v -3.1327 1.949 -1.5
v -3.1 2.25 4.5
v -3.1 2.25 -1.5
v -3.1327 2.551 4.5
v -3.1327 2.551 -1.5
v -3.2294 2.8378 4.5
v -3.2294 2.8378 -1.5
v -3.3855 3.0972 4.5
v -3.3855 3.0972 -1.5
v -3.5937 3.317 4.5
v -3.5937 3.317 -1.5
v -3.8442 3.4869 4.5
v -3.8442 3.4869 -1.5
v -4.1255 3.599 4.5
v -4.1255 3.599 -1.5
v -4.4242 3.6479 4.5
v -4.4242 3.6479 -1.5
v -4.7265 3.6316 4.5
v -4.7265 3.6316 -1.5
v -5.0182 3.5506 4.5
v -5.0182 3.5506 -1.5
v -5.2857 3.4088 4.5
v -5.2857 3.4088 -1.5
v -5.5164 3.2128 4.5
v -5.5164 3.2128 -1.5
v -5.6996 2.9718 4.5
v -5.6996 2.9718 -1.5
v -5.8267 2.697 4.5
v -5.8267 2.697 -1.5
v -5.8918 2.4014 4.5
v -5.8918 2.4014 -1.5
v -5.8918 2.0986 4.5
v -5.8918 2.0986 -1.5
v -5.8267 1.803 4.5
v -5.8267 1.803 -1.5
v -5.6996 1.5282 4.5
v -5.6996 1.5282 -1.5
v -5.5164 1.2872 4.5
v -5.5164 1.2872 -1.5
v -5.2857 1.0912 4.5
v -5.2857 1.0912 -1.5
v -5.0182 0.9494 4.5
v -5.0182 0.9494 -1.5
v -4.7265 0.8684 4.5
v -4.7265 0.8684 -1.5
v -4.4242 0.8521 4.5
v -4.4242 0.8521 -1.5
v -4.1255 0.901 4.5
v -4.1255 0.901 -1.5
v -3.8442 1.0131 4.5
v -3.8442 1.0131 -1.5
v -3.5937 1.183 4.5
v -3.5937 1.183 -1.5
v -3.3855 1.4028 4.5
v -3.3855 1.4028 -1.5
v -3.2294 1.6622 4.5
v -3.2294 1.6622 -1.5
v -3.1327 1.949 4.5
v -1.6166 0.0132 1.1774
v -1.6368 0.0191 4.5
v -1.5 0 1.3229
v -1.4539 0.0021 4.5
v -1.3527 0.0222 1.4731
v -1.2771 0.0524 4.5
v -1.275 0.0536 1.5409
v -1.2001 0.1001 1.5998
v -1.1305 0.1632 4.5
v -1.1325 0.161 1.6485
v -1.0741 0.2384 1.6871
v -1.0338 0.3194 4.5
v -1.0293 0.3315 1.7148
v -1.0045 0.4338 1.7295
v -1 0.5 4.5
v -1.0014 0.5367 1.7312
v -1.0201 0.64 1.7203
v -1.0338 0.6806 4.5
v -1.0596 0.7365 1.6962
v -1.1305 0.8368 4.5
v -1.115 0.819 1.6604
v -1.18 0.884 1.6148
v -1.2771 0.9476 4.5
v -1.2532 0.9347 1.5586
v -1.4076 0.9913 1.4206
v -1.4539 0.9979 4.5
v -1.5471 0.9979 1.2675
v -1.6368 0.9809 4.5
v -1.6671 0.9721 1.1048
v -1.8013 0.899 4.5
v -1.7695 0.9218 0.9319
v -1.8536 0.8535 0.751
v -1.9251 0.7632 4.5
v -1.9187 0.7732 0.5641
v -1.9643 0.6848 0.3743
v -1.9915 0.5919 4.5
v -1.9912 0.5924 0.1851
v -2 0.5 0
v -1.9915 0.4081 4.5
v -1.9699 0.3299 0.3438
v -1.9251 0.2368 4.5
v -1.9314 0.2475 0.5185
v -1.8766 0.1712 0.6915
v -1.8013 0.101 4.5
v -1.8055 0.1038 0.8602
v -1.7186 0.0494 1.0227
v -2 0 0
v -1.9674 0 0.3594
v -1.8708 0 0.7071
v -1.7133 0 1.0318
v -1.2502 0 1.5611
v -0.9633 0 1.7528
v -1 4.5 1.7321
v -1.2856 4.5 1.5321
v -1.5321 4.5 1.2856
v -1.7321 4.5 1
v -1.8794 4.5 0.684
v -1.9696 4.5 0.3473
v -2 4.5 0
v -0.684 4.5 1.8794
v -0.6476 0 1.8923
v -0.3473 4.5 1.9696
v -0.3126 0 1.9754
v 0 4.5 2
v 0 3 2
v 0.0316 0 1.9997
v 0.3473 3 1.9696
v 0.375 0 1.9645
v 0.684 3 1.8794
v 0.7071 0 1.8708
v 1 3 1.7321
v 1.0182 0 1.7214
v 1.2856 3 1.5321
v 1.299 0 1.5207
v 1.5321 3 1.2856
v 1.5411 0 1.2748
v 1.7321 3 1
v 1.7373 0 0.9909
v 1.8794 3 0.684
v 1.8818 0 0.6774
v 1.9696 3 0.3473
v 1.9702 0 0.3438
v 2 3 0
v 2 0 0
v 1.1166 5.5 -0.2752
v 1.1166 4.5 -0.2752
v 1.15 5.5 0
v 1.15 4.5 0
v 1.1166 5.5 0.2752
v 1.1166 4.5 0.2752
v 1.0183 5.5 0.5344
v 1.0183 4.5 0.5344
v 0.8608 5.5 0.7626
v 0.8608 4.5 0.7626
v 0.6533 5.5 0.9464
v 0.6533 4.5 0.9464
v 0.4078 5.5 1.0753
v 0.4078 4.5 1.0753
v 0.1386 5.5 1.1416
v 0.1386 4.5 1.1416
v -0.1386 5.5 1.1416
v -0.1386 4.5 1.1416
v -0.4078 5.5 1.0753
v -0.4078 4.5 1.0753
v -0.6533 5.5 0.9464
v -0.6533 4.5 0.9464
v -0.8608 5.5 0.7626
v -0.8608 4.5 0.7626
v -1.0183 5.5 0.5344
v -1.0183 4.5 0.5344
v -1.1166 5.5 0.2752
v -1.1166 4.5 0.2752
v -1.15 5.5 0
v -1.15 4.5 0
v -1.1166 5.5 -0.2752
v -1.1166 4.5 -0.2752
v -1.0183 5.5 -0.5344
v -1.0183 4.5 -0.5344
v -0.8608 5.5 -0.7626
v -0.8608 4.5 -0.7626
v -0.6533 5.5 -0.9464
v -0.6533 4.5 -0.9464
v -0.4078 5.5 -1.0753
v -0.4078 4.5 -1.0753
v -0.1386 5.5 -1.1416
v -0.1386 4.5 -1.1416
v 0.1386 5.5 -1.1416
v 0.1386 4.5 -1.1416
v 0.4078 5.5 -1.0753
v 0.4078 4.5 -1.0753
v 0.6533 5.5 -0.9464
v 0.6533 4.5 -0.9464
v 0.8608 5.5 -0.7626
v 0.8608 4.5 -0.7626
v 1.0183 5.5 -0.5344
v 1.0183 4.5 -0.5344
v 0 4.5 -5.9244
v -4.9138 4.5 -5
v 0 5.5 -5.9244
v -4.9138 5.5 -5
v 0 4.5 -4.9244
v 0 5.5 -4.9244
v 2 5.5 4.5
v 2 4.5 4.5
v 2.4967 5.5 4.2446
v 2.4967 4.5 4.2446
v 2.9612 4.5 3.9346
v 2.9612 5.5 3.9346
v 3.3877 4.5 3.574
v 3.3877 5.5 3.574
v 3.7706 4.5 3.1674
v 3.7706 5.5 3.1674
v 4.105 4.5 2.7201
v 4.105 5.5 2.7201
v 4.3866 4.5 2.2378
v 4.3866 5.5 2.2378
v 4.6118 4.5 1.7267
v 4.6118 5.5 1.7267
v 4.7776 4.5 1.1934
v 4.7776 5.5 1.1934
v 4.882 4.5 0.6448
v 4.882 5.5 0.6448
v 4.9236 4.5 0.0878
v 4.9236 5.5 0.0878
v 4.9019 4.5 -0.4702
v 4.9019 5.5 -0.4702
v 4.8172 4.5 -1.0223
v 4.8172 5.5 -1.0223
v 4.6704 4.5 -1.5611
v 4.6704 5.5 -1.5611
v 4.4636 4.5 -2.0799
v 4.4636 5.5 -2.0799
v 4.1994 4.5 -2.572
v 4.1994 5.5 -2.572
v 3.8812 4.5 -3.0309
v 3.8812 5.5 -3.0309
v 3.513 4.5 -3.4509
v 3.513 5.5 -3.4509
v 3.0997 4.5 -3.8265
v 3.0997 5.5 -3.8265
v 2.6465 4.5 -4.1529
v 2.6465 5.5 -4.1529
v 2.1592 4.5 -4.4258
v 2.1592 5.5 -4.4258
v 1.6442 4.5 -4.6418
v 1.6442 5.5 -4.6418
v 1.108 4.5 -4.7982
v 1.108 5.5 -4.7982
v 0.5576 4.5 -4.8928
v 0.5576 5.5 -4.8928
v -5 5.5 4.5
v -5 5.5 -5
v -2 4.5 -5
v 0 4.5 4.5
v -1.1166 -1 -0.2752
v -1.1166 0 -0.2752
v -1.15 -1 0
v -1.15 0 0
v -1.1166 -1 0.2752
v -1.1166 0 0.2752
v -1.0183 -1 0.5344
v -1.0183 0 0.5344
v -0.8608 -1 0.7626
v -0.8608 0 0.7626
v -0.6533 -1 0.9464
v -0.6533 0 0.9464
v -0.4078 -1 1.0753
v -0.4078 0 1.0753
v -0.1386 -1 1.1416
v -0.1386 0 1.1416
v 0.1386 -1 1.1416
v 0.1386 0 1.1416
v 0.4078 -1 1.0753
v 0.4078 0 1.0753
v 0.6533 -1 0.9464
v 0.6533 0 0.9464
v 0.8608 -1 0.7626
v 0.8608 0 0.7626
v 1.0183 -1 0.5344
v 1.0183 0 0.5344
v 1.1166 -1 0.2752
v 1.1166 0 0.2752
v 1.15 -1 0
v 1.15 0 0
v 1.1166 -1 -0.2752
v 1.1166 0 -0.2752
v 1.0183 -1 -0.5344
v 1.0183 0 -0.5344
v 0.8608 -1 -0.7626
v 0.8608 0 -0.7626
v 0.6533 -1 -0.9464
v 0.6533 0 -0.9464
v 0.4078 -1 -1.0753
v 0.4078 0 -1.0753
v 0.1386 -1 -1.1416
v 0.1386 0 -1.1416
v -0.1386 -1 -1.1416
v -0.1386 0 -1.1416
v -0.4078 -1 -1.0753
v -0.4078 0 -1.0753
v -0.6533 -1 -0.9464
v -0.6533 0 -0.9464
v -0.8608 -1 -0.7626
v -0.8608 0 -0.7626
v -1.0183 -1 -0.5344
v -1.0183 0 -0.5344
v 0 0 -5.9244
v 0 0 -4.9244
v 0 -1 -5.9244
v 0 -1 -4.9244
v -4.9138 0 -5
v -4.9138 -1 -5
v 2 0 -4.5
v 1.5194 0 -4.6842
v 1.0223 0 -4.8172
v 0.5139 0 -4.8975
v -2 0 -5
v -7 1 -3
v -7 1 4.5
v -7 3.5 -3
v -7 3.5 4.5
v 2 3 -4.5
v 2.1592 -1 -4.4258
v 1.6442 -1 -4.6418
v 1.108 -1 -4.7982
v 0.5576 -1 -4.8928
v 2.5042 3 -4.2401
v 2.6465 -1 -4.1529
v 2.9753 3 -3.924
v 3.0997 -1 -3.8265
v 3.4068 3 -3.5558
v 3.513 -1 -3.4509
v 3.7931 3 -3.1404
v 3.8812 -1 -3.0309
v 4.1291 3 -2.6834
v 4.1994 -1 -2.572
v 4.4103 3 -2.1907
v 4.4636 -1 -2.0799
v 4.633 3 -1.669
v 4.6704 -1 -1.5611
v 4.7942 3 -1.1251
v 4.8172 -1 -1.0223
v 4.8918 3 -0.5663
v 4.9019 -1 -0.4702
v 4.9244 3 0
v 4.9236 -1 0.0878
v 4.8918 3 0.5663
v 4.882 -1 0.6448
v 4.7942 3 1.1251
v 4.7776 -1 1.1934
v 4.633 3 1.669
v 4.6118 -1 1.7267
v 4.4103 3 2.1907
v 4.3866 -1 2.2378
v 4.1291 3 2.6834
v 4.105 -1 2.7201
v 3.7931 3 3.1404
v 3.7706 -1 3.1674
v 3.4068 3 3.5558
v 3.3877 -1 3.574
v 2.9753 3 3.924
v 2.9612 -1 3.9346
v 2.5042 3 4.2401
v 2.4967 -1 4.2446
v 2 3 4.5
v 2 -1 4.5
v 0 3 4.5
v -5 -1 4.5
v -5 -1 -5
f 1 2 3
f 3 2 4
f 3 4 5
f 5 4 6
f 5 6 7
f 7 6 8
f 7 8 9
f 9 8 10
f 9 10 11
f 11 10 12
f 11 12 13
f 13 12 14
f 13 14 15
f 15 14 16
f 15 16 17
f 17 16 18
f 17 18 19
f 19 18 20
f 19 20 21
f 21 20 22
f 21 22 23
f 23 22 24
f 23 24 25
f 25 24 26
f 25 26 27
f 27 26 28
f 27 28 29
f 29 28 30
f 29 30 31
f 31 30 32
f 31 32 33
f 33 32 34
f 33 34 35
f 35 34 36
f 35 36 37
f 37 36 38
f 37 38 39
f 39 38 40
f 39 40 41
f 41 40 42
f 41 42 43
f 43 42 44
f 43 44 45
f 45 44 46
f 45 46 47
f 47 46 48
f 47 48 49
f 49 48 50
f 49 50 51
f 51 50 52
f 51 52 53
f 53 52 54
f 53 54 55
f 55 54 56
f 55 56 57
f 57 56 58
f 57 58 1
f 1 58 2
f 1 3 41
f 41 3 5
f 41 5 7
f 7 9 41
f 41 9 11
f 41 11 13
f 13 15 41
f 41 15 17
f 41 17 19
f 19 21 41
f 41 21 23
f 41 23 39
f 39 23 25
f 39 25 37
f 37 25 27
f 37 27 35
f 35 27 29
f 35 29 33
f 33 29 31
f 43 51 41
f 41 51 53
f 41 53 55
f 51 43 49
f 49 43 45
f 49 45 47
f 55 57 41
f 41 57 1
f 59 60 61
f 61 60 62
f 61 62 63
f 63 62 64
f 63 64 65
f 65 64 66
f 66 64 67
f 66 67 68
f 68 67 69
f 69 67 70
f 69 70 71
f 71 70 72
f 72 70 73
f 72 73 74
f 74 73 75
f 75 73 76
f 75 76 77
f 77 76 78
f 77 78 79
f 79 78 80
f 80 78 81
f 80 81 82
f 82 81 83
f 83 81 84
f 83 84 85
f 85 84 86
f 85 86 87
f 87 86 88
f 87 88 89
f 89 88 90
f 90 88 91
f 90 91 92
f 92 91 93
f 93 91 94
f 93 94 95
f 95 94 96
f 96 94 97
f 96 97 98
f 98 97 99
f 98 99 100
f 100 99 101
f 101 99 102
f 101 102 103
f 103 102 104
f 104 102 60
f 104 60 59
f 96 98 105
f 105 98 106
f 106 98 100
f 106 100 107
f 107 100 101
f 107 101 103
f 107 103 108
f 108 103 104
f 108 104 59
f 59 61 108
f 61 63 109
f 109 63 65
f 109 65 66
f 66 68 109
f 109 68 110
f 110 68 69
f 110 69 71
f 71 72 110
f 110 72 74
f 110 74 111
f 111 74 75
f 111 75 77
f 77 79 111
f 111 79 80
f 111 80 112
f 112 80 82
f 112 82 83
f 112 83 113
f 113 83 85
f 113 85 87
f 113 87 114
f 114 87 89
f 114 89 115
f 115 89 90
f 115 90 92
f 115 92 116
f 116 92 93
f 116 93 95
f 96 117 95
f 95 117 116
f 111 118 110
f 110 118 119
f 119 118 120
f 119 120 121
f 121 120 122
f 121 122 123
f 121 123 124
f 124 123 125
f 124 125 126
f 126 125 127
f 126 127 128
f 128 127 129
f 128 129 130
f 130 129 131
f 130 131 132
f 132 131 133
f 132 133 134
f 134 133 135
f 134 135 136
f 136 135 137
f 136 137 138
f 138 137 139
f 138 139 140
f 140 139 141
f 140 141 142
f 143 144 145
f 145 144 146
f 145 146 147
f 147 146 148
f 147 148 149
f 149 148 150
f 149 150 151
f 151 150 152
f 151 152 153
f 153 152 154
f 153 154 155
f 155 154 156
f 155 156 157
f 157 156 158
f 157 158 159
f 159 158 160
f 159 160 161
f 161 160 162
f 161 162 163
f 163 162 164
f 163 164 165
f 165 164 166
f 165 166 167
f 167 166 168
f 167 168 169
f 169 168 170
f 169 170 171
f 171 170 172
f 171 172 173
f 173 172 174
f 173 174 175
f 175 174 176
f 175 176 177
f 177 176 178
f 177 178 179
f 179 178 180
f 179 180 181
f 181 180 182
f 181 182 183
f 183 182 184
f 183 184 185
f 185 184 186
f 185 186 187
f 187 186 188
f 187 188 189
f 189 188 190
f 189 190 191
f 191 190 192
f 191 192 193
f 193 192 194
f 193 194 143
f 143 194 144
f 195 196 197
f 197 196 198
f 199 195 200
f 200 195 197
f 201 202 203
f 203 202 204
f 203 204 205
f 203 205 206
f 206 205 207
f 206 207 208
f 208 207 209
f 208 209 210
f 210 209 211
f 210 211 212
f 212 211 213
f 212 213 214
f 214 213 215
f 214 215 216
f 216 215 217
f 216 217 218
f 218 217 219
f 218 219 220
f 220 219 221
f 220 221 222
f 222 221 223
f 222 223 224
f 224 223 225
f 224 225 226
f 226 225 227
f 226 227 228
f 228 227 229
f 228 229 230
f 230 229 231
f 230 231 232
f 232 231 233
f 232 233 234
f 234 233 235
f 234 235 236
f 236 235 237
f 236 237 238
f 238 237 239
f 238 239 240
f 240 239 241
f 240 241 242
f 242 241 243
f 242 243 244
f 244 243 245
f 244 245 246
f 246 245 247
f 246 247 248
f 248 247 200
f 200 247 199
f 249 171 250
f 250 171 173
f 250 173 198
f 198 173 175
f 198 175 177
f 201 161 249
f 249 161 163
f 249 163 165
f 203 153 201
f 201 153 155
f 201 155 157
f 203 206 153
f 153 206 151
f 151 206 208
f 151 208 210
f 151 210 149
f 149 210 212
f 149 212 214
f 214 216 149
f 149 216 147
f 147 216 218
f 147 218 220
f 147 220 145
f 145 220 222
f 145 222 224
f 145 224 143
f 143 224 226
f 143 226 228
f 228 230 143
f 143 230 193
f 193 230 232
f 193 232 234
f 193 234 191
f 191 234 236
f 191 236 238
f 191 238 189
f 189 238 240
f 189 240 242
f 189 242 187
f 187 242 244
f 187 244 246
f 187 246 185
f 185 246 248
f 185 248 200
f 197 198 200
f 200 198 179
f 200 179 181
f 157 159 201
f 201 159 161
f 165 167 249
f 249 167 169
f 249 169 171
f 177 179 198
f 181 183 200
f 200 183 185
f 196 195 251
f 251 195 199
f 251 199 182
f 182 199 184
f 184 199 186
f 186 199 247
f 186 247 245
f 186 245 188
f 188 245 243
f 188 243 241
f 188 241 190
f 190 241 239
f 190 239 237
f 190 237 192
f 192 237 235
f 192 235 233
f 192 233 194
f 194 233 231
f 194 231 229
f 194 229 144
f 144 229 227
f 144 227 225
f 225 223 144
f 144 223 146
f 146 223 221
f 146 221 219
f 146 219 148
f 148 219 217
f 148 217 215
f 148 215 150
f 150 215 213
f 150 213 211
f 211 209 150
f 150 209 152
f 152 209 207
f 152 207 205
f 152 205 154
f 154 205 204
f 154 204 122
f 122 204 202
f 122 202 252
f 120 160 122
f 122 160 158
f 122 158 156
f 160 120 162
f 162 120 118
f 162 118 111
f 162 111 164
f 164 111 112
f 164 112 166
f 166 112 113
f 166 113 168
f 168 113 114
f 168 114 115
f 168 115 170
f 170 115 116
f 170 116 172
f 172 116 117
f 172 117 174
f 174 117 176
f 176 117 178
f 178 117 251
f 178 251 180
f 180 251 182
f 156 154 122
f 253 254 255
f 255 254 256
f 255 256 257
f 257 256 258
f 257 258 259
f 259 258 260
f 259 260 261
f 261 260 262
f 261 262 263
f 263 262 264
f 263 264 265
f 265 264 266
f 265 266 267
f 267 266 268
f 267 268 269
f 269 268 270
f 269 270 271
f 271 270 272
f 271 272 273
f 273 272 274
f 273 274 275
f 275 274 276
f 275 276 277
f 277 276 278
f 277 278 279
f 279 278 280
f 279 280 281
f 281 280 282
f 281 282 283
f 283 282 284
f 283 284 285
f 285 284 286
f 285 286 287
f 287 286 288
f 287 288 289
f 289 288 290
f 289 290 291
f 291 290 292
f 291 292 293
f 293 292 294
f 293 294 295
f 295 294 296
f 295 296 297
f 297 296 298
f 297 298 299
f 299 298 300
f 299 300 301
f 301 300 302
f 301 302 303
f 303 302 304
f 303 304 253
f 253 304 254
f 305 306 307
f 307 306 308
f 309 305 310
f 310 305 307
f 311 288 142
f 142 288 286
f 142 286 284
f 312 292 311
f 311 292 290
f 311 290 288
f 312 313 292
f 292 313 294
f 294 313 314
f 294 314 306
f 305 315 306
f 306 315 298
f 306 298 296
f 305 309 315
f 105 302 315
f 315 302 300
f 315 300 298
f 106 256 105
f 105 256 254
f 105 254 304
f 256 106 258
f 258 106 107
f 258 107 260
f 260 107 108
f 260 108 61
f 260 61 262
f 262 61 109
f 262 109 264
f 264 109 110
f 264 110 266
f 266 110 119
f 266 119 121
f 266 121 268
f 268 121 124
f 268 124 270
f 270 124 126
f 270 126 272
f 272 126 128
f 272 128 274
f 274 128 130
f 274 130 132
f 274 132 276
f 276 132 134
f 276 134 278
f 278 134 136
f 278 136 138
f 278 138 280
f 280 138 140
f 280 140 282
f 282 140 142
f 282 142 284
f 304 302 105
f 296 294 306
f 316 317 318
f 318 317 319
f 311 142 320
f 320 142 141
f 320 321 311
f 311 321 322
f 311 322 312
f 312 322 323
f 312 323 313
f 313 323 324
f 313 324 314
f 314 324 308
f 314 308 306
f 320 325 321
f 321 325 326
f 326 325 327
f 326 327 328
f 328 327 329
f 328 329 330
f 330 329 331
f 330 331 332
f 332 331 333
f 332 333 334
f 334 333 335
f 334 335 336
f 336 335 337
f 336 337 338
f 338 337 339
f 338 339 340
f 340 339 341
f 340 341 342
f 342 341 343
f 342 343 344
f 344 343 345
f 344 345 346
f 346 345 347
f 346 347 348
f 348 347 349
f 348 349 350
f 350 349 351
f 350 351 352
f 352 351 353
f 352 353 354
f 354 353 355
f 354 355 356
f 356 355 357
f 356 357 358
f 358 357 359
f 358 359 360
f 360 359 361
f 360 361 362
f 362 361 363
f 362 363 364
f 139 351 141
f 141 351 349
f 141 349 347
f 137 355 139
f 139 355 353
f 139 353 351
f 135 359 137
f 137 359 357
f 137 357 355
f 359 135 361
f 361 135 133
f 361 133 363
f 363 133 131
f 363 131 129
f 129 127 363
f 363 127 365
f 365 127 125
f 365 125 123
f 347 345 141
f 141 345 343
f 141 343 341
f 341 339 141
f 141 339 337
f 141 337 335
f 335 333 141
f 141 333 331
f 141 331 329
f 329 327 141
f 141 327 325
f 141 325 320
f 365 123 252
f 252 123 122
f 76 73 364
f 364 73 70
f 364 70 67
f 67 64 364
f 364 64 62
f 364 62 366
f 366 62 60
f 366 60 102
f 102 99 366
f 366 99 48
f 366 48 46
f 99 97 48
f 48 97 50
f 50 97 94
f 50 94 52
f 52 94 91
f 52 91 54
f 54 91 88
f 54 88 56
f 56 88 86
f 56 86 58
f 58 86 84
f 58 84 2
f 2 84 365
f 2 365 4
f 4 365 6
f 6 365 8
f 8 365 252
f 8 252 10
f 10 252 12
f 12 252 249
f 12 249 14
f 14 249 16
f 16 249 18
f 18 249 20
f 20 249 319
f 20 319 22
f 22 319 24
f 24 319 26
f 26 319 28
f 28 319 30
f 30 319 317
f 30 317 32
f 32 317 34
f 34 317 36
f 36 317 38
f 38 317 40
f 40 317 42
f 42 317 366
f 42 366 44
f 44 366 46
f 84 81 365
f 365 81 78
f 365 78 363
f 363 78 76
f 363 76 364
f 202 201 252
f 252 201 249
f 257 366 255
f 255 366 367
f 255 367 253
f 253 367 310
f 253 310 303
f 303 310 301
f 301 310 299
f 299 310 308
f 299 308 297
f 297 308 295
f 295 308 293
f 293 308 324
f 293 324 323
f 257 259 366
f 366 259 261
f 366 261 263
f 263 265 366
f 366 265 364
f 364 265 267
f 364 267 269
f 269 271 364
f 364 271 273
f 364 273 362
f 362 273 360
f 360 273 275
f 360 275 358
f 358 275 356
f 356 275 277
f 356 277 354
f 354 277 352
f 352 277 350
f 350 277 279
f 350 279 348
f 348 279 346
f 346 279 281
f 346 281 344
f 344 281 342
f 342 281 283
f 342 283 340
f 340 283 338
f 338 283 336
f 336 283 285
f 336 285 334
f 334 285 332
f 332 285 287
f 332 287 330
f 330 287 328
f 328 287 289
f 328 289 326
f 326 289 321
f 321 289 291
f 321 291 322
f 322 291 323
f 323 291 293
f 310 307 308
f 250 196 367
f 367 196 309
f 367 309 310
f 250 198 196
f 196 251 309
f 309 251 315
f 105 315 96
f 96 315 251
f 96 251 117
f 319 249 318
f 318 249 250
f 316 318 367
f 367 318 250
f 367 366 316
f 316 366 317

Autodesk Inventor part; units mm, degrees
ref_plane "YZ Plane" through (0, 0, 0) normal (1, 0, 0) x (0, 1, 0)
ref_plane "XZ Plane" through (0, 0, 0) normal (0, 1, 0) x (-1, 0, 0)
ref_plane "XY Plane" through (0, 0, 0) normal (0, 0, 1) x (1, 0, 0)
sketch "スケッチ1" plane through (0, 0, 0) normal (0, 1, 0) x (-1, 0, 0)
  circle A0 centre (0, 0) radius 1.15
  circle A1 centre (0, 0) radius 2
  circle A2 centre (0, 0) radius 5
  line L0 (0, 0) -> (7, 0)
  line L1 (7, 0) -> (7, 4.5)
  line L2 (7, 4.5) -> (0, 4.5)
  line L3 (0, 4.5) -> (0, 0)
  line L4 (0, 0) -> (7, 0)
  line L5 (7, 0) -> (7, -5)
  line L6 (7, -5) -> (0, -5)
  line L7 (0, -5) -> (0, 0)
  line L8 (0, 4.5) -> (-2, 4.5)
  line L9 (-2, 4.5) -> (-2, 0)
  line L10 (-2, 0) -> (0, 0)
  line L11 (0, 0) -> (0, 4.5)
  circle A3 centre (0, 0) radius 3
  line L12 (-2, 0) -> (-2, -5)
  line L13 (-2, -5) -> (0, -5)
  line L14 (2, 0) -> (2, -5)
  circle A4 centre (0, 0) radius 4.9244
  line L15 (-2, 0) -> (-4.9244, 0)
  line L16 (0, -4.9244) -> (0, -5.9244)
  line L17 (0, -5.9244) -> (7, -5.9244)
  line L18 (7, -5.9244) -> (7, -5)
  line L19 (7, -5) -> (0, -5.9244)
  line L20 (0, -5.9244) -> (4.9138, -5)
  point P0 (0, 2)
  point P1 (-2, 2.2361)
  point P2 (-2, -2.2361)
  point P3 (-2, -4.5826)
  point P4 (-2, -4.5)
  point P5 (0, -4.9244)
  dimension "d2" = 10
  dimension "d0" = 2.3
  dimension "d1" = 4
  dimension "d3" = 7
  dimension "d4" = 4.5
  dimension "d5" = 6
  dimension "d22" = 1
  dimension "d34" = 5
extrude "押し出し1" add sketch "スケッチ1" along normal blind 4.5 contours A1 L3 A3 L0 | L0 A3 L14 | A3 L3 L2 A4 L0 | L0 A4 L14 A3 | A4 L2 A2 L0 | L0 A2 L14 A4 | L0 L5 L6 L14 A2 | A2 L2 L1 L0
extrude "押し出し2" add sketch "スケッチ1" along normal blind 3 contours A1 L9 A3 L3 | L15 A3 L9 | L12 A3 L15 | A3 L9 L8 L3 | A3 L15 A4 L9 | L12 A4 L15 A3
extrude "押し出し3" add sketch "スケッチ1" against normal blind 1 contours L0 A1 L7 A0 | A0 L3 A1 L0 | A0 L10 A1 L3 | L7 A1 L10 A0 | L14 A3 L7 A1 | A1 L3 A3 L0 | L0 A3 L14 | A1 L9 A3 L3 | L7 A3 L12 A1 | A3 L3 L2 A4 L0 | L0 A4 L14 A3 | L14 A4 L7 A3 | L15 A3 L9 | L12 A3 L15 | A3 L9 L8 L3 | L7 A4 L12 A3 | A4 L2 A2 L0 | L0 A2 L14 A4 | L14 A2 L7 A4 | A3 L15 A4 L9 | L12 A4 L15 A3 | L0 L5 L6 L14 A2 | A2 L2 L1 L0 | L14 L6 A2 | L6 L20 L16
sketch "スケッチ2" plane through (0, 4.5, 0) normal (0, 1, 0) x (1, 0, 0)
  circle A0 centre (0, 0) radius 1.15
  circle A1 centre (0, 0) radius 2
  circle A2 centre (0, 0) radius 4.9244
  line L0 (0, 0) -> (2, 0)
  line L1 (2, 0) -> (2, -4.5)
  line L2 (2, -4.5) -> (0, -4.5)
  line L3 (0, -4.5) -> (0, 0)
  line L4 (-2, 5) -> (-7, 5) projected
  line L5 (0, -4.5) -> (-7, -4.5)
  line L6 (-7, -4.5) -> (-7, 5)
  line L7 (-7, 5) -> (0, 5)
  line L8 (0, 5) -> (0, -4.5)
  line L9 (0, 0) -> (2, 0)
  line L10 (2, 0) -> (2, 5)
  line L11 (2, 5) -> (0, 5)
  line L12 (0, 5) -> (0, 0)
  line L13 (0, 5) -> (-7, 5)
  line L14 (0, 5.9244) -> (0, 5)
  line L15 (-7, 5) -> (0, 5.9244)
  line L16 (0, 5.9244) -> (-4.9138, 5)
  line L17 (-2, 5) -> (-7, 5) projected
  point P0 (0, 4.9244)
  dimension "d12" = 4
  dimension "d35" = 5
extrude "押し出し4" add sketch "スケッチ2" along normal blind 1 contours L0 A1 L3 A0 | A0 L8 A1 L0 | A0 L3 A1 L8 | L1 L2 L3 A1 | L10 A2 L1 | A1 L8 A2 L10 | A1 L3 L5 A2 L8 | A2 L5 L6 L4 L7 L8 | L7 L4 L16 L14
sketch "スケッチ4" plane through (0, 3, 4.5) normal (0, 0, 1) x (1, 0, 0)
  line L0 (-7, 2.5) -> (2, 2.5) projected
  line L1 (-7, 2.5) -> (-4.5, 2.5)
  line L2 (-4.5, 2.5) -> (-4.5, -0.75)
  line L3 (-4.5, -0.75) -> (-7, -0.75)
  line L4 (-7, -0.75) -> (-7, 2.5)
  circle A0 centre (-4.5, -0.75) radius 1.4
  line L5 (0, -3) -> (0, -2.5)
  line L6 (0, -2.5) -> (-1.5, -2.5)
  circle A1 centre (-1.5, -2.5) radius 0.5
  dimension "d23" = 2.5
  dimension "d24" = 3.25
  dimension "d25" = 2.8
  dimension "d26" = 0.5
  dimension "d27" = 1.5
  dimension "d28" = 1
extrude "押し出し6" cut sketch "スケッチ4" against normal blind 6 contours A0 L3 L2 | L2 L3 A0 | A1
chamfer "面取り2" distance 2 angle 45 3 edges at (-7, 5.5, -0.25) (-7, -1, -0.25) (-7, 2.25, -5)
properties part number "rod5.5"
